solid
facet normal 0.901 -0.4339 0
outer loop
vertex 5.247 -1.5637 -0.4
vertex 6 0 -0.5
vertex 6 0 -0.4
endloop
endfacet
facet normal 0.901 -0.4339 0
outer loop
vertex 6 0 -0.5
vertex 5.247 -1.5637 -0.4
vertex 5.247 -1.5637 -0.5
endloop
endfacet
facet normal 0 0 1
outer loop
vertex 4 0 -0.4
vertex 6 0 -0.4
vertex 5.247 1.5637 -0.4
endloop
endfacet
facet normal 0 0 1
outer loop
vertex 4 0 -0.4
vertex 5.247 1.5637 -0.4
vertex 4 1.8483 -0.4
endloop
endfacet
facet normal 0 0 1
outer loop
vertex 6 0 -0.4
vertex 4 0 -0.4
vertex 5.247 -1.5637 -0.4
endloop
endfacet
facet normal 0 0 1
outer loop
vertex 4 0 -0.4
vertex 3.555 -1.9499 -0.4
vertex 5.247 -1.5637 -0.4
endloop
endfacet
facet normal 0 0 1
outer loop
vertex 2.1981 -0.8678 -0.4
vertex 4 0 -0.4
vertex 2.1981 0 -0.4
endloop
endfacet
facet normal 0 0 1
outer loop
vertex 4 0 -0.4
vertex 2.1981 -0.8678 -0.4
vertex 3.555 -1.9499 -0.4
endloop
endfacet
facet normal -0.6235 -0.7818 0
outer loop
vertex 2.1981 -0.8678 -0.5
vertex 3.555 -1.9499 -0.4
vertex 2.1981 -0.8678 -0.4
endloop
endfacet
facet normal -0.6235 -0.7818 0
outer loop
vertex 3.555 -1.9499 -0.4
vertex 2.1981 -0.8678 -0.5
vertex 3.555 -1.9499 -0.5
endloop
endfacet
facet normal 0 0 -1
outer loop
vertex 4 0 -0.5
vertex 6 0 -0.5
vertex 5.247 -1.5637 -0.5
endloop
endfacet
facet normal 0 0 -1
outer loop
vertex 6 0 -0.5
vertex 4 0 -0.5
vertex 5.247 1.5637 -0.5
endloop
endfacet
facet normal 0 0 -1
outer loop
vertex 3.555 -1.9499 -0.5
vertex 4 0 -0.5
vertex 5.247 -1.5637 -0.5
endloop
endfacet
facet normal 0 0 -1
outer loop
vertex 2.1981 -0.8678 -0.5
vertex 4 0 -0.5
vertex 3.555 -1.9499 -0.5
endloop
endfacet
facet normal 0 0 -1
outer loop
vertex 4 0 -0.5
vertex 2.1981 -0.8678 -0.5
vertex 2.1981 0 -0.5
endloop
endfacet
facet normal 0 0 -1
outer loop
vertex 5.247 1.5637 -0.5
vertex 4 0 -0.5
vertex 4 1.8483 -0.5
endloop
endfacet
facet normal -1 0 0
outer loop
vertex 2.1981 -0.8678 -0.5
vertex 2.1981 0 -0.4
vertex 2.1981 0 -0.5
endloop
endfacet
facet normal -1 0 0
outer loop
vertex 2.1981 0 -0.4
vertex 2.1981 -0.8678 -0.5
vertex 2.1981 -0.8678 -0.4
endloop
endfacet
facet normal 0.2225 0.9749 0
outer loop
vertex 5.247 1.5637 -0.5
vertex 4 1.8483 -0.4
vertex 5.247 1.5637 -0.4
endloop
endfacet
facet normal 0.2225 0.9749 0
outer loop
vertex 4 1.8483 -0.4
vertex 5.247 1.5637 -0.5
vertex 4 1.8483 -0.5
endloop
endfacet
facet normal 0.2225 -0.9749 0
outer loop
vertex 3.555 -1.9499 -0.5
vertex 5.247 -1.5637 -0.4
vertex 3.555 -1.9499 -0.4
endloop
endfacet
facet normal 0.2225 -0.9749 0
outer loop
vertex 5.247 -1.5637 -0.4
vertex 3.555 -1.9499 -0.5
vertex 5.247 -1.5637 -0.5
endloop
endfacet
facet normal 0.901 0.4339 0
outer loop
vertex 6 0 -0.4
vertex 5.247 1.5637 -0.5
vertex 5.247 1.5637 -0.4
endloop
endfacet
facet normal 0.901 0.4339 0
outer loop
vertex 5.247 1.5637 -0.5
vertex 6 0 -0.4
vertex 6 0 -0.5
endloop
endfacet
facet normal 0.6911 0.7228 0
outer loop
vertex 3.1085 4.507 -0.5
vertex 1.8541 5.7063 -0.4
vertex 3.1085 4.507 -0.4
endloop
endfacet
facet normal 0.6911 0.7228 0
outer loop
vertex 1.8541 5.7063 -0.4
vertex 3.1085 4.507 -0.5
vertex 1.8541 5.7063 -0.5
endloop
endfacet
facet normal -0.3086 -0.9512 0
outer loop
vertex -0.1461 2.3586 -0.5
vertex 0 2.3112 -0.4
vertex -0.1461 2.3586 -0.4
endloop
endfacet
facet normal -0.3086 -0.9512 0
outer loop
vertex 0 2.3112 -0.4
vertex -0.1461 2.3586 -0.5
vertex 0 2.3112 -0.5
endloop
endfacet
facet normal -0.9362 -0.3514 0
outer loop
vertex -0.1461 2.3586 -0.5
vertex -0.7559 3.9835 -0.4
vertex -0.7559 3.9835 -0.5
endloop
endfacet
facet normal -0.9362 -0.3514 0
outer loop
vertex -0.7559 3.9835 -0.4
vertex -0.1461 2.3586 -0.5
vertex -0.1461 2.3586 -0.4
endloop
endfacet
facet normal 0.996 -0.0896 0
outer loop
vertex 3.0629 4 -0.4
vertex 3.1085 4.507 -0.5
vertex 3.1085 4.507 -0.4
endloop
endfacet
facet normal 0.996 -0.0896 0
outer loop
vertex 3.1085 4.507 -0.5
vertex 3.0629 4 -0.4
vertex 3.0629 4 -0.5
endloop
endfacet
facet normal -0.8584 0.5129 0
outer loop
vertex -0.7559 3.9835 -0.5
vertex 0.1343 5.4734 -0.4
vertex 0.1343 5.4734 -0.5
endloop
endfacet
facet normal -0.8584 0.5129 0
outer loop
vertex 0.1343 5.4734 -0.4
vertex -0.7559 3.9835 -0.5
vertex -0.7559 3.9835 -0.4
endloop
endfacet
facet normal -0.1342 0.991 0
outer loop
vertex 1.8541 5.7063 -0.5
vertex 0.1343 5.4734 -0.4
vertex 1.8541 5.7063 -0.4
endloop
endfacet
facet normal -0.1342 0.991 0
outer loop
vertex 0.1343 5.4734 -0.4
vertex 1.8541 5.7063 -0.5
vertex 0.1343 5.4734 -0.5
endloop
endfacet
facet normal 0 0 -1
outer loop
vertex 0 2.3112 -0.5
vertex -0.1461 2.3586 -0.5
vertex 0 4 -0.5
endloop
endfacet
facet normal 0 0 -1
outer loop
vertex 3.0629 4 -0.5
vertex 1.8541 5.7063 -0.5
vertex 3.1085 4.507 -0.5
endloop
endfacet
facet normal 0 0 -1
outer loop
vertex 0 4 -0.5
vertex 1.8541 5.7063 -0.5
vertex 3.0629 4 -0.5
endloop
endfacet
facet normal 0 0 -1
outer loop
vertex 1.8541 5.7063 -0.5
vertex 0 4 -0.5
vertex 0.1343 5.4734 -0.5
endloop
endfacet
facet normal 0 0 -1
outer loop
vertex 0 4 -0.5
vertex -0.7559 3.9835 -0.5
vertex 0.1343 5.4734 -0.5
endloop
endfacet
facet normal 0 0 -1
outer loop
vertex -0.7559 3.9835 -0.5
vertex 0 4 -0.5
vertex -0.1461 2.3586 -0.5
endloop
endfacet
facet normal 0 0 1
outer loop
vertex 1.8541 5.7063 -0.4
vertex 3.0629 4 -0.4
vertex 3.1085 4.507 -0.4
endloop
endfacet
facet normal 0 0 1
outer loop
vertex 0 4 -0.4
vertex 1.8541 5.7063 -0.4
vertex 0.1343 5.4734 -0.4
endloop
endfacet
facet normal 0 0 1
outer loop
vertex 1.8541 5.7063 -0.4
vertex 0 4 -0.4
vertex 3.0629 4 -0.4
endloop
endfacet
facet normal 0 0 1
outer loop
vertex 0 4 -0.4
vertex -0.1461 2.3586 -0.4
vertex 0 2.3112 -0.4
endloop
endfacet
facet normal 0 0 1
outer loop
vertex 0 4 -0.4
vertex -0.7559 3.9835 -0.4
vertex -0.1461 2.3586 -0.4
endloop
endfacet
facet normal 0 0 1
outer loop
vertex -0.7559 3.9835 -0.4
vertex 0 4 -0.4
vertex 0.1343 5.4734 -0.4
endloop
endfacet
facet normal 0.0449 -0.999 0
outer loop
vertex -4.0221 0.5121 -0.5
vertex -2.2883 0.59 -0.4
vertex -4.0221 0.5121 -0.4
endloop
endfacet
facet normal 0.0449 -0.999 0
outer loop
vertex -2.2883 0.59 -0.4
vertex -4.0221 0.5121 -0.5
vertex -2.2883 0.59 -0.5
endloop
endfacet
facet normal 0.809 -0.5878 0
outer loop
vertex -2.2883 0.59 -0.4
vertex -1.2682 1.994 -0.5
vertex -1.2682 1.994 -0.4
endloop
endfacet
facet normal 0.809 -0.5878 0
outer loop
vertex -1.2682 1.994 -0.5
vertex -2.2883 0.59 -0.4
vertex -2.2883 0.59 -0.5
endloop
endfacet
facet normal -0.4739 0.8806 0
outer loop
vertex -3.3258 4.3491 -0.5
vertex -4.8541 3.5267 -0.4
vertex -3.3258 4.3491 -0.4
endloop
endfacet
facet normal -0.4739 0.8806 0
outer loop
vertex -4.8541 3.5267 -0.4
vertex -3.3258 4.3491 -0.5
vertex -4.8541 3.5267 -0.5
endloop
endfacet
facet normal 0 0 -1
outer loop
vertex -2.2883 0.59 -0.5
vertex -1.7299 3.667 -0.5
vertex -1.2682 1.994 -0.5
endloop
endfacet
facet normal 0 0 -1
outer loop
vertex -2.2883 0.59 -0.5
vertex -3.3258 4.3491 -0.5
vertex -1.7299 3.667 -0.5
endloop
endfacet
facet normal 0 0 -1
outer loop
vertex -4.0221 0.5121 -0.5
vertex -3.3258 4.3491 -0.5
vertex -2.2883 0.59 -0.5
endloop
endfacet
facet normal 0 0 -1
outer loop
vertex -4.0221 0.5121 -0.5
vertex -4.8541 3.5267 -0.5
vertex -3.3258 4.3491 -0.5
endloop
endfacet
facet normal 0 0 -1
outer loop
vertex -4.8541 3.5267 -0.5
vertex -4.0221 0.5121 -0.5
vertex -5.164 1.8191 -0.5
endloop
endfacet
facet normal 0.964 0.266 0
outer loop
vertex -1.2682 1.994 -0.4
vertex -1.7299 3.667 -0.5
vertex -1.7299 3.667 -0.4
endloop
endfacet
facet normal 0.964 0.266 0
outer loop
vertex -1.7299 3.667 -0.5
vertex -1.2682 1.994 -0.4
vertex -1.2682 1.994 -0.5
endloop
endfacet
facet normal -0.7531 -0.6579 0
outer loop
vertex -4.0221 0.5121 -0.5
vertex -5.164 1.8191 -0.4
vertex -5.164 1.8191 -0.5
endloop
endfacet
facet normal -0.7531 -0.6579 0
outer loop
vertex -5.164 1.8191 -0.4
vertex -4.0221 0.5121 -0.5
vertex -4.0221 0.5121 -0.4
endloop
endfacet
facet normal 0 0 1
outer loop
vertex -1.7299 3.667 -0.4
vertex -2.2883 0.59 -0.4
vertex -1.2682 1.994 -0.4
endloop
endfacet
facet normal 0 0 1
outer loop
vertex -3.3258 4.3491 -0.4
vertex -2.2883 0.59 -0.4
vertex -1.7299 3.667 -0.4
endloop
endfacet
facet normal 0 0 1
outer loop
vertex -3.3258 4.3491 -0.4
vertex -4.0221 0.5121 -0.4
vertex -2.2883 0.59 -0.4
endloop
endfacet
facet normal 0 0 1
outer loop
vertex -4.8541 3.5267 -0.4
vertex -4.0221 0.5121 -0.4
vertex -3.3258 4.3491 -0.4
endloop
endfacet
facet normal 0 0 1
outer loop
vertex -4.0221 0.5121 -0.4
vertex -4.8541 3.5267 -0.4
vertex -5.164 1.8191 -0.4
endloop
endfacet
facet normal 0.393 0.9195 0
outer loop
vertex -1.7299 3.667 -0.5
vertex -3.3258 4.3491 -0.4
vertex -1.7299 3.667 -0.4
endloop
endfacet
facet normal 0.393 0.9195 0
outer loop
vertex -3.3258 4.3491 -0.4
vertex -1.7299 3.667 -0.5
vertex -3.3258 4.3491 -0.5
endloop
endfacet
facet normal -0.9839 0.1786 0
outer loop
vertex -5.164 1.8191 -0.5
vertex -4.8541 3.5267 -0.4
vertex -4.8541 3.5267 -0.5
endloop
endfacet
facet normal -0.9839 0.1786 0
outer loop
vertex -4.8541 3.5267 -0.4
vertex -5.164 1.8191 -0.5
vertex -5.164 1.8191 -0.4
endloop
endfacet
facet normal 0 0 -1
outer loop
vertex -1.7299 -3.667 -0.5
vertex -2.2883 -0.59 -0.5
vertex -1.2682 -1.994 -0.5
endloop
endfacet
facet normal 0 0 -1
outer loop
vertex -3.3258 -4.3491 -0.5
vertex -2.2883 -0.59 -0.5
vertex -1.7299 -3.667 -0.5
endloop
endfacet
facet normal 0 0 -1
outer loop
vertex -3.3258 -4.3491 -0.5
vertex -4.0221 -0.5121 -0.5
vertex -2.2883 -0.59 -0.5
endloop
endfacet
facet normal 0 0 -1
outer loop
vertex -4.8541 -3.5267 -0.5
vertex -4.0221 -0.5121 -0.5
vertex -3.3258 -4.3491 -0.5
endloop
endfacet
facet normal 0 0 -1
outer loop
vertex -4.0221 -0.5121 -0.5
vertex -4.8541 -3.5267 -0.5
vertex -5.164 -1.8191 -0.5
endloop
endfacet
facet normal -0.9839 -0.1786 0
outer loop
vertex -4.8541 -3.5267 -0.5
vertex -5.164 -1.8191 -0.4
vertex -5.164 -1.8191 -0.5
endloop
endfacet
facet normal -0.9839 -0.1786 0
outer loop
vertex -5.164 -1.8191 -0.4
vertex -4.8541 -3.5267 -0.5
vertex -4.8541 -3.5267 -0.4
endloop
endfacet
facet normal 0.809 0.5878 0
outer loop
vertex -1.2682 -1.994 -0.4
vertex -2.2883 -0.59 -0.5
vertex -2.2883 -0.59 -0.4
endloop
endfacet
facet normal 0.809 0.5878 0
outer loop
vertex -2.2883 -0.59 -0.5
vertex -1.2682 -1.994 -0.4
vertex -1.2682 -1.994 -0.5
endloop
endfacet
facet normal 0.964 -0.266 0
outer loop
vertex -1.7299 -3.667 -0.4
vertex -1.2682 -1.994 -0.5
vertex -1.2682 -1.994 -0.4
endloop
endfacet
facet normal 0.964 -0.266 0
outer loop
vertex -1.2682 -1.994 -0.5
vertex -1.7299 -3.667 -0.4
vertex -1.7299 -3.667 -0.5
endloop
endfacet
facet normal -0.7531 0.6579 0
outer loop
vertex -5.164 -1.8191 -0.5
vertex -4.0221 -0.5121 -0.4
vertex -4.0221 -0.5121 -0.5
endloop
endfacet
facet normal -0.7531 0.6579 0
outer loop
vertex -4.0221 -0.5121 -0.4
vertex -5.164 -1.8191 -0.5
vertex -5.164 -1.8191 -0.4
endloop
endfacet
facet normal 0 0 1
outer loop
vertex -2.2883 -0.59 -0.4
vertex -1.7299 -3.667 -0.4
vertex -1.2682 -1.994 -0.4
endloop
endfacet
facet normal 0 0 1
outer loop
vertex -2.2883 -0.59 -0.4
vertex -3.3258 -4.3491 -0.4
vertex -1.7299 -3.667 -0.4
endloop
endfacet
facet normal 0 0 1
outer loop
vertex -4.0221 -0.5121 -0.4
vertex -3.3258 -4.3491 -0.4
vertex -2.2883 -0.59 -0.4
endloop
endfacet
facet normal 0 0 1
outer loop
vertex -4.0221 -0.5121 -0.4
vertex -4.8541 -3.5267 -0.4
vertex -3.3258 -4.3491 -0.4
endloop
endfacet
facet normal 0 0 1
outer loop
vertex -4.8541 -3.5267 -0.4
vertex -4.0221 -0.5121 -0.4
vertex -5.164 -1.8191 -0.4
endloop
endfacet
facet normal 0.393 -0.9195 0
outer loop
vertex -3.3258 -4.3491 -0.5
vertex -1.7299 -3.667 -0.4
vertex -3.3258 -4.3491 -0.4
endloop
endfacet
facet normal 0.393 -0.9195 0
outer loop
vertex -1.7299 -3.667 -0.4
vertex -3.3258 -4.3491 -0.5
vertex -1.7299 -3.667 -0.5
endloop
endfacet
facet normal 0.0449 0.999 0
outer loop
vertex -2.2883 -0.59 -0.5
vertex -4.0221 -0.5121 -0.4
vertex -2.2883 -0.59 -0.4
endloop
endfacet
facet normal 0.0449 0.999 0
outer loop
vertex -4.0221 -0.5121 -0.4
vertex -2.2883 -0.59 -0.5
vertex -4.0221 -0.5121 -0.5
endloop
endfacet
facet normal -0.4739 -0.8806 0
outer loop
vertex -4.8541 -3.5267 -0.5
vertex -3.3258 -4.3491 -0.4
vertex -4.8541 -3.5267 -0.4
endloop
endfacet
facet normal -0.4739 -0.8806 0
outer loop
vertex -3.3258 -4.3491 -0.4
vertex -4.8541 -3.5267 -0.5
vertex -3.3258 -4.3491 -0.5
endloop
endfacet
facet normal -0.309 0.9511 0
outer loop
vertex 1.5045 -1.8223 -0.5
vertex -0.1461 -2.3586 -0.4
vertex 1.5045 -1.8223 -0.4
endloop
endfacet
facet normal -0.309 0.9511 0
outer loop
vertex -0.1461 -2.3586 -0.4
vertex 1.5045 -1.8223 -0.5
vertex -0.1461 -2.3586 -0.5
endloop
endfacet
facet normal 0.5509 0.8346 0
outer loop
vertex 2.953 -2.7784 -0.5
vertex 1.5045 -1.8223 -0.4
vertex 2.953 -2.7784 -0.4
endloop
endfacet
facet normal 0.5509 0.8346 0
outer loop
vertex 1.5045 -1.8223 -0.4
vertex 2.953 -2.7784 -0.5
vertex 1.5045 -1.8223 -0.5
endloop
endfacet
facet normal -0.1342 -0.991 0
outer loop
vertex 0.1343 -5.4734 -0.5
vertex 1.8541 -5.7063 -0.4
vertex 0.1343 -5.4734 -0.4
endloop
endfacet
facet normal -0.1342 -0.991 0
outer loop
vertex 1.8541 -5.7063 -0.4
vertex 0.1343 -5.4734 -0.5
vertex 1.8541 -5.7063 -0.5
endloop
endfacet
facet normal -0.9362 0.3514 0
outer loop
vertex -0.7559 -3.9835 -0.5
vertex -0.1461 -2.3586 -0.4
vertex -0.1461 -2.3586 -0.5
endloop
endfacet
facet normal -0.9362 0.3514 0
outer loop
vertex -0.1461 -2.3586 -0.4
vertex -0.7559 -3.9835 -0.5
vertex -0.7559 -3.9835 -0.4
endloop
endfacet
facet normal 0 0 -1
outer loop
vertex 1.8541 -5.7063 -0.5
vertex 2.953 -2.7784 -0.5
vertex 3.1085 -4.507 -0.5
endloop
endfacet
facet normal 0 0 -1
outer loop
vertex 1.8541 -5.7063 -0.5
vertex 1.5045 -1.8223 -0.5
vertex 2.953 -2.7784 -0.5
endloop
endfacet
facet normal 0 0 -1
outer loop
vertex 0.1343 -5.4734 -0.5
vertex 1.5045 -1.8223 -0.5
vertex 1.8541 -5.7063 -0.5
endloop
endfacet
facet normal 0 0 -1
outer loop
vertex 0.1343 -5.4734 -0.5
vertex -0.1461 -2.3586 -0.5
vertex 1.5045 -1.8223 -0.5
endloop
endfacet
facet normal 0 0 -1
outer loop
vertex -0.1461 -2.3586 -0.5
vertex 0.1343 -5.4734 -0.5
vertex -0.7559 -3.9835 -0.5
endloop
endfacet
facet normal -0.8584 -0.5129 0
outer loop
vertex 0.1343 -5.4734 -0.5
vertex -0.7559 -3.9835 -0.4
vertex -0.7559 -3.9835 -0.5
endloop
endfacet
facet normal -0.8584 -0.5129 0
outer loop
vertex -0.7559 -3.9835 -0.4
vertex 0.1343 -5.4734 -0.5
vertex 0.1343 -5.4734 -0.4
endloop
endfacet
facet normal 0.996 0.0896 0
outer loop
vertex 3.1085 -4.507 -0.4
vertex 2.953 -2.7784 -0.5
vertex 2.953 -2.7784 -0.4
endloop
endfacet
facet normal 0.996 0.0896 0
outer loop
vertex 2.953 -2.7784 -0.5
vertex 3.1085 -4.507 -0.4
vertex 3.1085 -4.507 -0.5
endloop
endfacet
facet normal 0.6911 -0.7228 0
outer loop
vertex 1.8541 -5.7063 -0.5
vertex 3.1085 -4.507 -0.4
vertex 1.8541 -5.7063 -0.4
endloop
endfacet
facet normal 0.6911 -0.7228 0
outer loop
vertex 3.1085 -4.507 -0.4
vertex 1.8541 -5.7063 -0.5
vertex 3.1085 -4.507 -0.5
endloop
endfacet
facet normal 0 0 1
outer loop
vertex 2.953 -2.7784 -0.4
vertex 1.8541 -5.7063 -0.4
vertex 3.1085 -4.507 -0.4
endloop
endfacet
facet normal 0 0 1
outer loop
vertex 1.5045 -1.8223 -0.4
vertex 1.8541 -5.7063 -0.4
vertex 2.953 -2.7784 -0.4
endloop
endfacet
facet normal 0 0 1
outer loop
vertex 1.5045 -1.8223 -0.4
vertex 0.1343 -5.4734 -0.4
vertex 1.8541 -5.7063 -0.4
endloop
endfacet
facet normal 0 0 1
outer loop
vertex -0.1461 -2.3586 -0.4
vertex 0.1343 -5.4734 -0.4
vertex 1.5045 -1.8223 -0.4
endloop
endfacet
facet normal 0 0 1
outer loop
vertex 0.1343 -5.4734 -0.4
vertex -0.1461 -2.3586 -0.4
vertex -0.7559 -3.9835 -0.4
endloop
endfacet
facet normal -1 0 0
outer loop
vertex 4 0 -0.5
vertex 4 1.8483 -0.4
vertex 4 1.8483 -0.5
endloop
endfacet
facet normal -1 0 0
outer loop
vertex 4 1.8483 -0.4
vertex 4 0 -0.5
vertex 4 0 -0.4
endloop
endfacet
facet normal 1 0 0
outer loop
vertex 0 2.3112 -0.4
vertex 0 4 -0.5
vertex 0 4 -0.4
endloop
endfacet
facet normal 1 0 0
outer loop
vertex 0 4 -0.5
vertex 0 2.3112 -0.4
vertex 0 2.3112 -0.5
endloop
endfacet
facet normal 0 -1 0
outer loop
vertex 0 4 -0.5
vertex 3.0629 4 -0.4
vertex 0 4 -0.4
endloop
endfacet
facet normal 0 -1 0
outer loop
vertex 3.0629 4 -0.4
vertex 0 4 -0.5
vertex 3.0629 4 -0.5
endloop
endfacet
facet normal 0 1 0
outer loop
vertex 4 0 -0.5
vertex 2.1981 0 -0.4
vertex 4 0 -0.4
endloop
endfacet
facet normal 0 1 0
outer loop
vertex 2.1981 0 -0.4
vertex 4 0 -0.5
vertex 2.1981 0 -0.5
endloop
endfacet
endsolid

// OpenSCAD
// Parameters
point_radius = 2;
point_height = 1;
point_angle = 15;
points = 5;
inner_radius = 1;

module point(angle, radius) {
  rotate([0, 0, angle])
  translate([radius, 0, 0])
  linear_extrude(height = 0.1) circle(r = radius);
}

difference() {
  for (i = [0:points - 1]) {
    angle = i * 360 / points;
    translate([
      point_radius * cos(angle),
      point_radius * sin(angle),
      -point_height/2
    ]) {
      point(angle, point_radius);
    }
  }
  
  translate([0,0,-inner_radius])
  cube([point_radius*2,point_radius*2,inner_radius*2]);
}
